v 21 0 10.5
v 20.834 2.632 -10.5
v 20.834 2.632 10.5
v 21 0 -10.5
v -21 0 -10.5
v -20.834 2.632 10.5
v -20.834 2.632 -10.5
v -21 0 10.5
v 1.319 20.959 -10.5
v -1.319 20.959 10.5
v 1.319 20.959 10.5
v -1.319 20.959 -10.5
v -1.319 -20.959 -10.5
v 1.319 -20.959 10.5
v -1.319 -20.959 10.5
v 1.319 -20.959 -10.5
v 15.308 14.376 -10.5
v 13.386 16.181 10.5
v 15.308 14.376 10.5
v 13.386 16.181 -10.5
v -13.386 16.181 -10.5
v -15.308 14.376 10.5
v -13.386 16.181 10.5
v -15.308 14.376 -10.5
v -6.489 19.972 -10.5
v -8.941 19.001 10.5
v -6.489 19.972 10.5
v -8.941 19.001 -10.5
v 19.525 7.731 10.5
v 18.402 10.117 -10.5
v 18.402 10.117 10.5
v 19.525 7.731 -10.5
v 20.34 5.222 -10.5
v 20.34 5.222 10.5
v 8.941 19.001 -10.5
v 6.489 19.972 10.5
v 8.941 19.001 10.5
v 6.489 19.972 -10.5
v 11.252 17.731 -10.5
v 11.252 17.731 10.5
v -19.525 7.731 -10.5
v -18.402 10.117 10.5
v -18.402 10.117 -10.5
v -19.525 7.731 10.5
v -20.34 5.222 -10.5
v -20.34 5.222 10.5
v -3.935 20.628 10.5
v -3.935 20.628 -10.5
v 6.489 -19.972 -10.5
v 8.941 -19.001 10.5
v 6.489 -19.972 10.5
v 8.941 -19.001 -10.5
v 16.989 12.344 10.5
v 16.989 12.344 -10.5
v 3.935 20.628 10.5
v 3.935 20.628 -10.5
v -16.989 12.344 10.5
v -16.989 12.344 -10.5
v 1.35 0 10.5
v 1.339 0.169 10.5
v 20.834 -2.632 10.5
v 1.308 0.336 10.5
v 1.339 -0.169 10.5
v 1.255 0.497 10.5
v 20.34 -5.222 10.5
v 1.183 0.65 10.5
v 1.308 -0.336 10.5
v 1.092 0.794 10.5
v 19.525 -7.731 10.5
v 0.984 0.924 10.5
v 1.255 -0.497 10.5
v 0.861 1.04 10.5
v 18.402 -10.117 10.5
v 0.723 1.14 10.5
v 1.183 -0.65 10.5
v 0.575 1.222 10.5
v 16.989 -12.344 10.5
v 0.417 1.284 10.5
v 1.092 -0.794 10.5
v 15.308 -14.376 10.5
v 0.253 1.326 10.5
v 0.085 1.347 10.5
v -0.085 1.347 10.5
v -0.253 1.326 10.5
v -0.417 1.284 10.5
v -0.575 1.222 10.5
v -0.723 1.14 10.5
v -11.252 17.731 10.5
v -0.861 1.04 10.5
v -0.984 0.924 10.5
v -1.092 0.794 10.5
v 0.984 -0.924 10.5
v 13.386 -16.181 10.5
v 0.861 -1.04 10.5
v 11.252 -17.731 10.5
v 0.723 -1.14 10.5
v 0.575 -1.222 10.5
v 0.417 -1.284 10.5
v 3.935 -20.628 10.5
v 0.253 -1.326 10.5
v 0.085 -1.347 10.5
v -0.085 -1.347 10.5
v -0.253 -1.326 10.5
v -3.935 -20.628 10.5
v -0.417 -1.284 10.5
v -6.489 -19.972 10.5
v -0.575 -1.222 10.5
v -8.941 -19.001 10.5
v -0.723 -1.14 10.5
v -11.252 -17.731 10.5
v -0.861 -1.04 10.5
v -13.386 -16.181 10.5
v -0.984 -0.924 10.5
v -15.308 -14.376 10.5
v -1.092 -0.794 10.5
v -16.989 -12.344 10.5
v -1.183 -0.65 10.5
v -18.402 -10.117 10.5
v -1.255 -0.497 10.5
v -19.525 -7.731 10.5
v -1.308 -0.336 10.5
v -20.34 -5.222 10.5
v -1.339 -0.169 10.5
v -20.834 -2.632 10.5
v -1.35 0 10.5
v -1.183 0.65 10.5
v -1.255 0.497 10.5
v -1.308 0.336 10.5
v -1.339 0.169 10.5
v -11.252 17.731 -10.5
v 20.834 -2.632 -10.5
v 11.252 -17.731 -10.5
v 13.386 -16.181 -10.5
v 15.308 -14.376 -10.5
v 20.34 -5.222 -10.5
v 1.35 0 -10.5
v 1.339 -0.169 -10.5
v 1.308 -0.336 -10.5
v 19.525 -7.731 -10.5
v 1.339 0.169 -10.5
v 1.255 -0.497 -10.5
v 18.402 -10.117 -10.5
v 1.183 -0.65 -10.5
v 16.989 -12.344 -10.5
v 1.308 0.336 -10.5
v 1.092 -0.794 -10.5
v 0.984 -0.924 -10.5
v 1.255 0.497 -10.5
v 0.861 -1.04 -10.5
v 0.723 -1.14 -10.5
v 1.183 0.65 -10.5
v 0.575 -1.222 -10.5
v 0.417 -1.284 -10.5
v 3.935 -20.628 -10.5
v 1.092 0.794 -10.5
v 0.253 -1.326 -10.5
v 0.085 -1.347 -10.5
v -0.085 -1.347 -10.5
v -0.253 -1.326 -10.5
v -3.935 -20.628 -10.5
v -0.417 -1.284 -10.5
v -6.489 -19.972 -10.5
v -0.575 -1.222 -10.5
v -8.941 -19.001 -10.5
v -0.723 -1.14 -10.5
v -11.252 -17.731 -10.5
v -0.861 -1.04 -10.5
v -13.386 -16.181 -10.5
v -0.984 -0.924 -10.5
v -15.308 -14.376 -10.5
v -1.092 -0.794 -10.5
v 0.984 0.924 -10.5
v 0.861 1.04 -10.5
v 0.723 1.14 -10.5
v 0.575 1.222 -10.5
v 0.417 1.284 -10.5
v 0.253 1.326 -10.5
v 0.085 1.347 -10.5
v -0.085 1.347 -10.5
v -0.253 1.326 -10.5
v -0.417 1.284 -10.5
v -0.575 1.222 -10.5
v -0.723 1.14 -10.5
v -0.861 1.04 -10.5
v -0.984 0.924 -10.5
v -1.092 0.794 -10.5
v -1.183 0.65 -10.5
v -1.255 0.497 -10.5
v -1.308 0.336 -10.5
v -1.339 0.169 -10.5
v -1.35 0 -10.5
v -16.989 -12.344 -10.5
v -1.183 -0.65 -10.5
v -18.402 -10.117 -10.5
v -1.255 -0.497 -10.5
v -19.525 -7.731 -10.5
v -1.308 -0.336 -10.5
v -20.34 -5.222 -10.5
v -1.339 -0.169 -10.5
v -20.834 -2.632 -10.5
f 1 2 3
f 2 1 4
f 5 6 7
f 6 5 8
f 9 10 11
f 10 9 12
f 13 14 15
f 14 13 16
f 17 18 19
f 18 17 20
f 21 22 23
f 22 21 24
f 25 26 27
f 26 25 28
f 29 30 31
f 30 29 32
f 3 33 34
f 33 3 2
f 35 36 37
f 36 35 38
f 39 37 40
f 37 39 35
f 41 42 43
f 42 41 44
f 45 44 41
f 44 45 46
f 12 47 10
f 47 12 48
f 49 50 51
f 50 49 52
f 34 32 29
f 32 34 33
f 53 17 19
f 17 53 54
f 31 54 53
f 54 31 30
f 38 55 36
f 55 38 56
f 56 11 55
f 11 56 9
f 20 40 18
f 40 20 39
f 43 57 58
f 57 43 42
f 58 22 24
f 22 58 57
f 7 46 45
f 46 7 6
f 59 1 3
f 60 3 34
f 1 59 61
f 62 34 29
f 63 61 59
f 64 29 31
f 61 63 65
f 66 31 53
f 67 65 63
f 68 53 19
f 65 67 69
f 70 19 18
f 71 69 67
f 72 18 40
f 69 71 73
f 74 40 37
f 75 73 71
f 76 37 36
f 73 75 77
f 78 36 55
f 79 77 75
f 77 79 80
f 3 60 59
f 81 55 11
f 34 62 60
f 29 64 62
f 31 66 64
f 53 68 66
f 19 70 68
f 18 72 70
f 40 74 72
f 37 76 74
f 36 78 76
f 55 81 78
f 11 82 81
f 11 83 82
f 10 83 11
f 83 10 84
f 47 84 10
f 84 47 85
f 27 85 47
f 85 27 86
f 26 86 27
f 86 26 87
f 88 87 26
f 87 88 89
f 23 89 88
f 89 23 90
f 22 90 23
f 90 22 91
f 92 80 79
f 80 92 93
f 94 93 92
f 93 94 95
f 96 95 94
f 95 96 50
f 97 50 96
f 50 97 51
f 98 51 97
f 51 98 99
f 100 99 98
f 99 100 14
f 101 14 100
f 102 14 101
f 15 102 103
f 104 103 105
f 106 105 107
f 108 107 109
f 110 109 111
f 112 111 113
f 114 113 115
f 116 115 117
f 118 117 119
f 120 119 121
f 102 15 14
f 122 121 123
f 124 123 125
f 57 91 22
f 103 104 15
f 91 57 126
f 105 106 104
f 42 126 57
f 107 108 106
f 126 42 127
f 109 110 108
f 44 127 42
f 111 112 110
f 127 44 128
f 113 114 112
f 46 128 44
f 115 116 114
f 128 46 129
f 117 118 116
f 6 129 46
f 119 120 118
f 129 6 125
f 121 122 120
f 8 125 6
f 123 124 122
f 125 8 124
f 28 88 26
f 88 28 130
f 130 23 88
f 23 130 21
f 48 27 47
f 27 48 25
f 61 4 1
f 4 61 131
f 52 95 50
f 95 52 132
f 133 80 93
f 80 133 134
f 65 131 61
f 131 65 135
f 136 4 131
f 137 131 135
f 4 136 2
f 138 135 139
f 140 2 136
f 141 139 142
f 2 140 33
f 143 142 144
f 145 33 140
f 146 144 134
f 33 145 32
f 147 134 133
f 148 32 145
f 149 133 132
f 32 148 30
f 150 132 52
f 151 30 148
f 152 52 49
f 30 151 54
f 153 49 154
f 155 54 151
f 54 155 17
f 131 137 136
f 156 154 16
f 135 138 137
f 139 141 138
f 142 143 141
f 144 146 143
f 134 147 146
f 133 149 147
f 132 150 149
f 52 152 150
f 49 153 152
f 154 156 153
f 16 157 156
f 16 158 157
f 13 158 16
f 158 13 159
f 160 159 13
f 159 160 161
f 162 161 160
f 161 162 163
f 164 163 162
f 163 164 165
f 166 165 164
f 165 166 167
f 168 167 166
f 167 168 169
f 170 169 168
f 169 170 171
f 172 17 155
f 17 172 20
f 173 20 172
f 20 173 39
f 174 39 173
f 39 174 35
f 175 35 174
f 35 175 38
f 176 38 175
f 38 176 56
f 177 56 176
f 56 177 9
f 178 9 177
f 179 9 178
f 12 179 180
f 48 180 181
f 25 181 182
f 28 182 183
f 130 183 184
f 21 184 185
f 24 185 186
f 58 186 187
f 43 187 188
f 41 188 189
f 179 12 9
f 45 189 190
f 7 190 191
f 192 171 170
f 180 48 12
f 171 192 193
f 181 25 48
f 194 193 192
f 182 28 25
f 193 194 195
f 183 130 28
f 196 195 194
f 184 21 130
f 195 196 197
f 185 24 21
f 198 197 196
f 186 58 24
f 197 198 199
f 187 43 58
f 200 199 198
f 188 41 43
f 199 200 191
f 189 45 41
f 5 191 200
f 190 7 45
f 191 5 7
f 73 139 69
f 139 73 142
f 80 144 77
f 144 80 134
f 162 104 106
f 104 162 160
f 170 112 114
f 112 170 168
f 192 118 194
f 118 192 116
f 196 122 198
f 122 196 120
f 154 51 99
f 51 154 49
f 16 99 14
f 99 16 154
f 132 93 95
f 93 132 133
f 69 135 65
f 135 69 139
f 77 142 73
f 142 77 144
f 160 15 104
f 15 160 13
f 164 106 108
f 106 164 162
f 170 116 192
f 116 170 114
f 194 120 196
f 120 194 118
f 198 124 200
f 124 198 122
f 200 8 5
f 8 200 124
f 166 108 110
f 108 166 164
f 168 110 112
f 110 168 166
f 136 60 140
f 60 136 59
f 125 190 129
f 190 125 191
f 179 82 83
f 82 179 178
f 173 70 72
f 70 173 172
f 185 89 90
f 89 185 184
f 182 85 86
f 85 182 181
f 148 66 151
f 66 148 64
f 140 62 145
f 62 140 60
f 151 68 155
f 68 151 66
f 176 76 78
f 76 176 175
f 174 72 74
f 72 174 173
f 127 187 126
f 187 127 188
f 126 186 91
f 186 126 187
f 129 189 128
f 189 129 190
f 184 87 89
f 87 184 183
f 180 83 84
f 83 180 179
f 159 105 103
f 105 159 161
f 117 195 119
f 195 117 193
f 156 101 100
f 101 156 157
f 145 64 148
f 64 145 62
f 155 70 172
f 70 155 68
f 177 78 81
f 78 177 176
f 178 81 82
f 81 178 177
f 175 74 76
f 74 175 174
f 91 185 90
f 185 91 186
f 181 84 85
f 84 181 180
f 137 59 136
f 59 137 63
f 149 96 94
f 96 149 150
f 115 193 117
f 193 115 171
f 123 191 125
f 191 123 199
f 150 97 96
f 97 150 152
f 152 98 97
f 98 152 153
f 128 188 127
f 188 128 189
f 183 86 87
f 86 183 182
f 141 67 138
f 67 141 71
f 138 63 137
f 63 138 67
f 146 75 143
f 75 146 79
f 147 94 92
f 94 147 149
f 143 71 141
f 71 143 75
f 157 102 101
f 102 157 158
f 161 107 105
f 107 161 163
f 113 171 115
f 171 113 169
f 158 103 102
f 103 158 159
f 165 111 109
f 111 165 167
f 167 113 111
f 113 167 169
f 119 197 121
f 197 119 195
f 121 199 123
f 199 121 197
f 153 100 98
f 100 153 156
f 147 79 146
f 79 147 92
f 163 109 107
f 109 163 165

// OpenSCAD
$fn = 50;


difference() {
	union() {
		translate(v = [0, 0, -10.5000000000]) {
			cylinder(h = 21, r = 21.0000000000);
		}
	}
	union() {
		translate(v = [0, 0, -100.0000000000]) {
			cylinder(h = 200, r = 1.3500000000);
		}
	}
}
